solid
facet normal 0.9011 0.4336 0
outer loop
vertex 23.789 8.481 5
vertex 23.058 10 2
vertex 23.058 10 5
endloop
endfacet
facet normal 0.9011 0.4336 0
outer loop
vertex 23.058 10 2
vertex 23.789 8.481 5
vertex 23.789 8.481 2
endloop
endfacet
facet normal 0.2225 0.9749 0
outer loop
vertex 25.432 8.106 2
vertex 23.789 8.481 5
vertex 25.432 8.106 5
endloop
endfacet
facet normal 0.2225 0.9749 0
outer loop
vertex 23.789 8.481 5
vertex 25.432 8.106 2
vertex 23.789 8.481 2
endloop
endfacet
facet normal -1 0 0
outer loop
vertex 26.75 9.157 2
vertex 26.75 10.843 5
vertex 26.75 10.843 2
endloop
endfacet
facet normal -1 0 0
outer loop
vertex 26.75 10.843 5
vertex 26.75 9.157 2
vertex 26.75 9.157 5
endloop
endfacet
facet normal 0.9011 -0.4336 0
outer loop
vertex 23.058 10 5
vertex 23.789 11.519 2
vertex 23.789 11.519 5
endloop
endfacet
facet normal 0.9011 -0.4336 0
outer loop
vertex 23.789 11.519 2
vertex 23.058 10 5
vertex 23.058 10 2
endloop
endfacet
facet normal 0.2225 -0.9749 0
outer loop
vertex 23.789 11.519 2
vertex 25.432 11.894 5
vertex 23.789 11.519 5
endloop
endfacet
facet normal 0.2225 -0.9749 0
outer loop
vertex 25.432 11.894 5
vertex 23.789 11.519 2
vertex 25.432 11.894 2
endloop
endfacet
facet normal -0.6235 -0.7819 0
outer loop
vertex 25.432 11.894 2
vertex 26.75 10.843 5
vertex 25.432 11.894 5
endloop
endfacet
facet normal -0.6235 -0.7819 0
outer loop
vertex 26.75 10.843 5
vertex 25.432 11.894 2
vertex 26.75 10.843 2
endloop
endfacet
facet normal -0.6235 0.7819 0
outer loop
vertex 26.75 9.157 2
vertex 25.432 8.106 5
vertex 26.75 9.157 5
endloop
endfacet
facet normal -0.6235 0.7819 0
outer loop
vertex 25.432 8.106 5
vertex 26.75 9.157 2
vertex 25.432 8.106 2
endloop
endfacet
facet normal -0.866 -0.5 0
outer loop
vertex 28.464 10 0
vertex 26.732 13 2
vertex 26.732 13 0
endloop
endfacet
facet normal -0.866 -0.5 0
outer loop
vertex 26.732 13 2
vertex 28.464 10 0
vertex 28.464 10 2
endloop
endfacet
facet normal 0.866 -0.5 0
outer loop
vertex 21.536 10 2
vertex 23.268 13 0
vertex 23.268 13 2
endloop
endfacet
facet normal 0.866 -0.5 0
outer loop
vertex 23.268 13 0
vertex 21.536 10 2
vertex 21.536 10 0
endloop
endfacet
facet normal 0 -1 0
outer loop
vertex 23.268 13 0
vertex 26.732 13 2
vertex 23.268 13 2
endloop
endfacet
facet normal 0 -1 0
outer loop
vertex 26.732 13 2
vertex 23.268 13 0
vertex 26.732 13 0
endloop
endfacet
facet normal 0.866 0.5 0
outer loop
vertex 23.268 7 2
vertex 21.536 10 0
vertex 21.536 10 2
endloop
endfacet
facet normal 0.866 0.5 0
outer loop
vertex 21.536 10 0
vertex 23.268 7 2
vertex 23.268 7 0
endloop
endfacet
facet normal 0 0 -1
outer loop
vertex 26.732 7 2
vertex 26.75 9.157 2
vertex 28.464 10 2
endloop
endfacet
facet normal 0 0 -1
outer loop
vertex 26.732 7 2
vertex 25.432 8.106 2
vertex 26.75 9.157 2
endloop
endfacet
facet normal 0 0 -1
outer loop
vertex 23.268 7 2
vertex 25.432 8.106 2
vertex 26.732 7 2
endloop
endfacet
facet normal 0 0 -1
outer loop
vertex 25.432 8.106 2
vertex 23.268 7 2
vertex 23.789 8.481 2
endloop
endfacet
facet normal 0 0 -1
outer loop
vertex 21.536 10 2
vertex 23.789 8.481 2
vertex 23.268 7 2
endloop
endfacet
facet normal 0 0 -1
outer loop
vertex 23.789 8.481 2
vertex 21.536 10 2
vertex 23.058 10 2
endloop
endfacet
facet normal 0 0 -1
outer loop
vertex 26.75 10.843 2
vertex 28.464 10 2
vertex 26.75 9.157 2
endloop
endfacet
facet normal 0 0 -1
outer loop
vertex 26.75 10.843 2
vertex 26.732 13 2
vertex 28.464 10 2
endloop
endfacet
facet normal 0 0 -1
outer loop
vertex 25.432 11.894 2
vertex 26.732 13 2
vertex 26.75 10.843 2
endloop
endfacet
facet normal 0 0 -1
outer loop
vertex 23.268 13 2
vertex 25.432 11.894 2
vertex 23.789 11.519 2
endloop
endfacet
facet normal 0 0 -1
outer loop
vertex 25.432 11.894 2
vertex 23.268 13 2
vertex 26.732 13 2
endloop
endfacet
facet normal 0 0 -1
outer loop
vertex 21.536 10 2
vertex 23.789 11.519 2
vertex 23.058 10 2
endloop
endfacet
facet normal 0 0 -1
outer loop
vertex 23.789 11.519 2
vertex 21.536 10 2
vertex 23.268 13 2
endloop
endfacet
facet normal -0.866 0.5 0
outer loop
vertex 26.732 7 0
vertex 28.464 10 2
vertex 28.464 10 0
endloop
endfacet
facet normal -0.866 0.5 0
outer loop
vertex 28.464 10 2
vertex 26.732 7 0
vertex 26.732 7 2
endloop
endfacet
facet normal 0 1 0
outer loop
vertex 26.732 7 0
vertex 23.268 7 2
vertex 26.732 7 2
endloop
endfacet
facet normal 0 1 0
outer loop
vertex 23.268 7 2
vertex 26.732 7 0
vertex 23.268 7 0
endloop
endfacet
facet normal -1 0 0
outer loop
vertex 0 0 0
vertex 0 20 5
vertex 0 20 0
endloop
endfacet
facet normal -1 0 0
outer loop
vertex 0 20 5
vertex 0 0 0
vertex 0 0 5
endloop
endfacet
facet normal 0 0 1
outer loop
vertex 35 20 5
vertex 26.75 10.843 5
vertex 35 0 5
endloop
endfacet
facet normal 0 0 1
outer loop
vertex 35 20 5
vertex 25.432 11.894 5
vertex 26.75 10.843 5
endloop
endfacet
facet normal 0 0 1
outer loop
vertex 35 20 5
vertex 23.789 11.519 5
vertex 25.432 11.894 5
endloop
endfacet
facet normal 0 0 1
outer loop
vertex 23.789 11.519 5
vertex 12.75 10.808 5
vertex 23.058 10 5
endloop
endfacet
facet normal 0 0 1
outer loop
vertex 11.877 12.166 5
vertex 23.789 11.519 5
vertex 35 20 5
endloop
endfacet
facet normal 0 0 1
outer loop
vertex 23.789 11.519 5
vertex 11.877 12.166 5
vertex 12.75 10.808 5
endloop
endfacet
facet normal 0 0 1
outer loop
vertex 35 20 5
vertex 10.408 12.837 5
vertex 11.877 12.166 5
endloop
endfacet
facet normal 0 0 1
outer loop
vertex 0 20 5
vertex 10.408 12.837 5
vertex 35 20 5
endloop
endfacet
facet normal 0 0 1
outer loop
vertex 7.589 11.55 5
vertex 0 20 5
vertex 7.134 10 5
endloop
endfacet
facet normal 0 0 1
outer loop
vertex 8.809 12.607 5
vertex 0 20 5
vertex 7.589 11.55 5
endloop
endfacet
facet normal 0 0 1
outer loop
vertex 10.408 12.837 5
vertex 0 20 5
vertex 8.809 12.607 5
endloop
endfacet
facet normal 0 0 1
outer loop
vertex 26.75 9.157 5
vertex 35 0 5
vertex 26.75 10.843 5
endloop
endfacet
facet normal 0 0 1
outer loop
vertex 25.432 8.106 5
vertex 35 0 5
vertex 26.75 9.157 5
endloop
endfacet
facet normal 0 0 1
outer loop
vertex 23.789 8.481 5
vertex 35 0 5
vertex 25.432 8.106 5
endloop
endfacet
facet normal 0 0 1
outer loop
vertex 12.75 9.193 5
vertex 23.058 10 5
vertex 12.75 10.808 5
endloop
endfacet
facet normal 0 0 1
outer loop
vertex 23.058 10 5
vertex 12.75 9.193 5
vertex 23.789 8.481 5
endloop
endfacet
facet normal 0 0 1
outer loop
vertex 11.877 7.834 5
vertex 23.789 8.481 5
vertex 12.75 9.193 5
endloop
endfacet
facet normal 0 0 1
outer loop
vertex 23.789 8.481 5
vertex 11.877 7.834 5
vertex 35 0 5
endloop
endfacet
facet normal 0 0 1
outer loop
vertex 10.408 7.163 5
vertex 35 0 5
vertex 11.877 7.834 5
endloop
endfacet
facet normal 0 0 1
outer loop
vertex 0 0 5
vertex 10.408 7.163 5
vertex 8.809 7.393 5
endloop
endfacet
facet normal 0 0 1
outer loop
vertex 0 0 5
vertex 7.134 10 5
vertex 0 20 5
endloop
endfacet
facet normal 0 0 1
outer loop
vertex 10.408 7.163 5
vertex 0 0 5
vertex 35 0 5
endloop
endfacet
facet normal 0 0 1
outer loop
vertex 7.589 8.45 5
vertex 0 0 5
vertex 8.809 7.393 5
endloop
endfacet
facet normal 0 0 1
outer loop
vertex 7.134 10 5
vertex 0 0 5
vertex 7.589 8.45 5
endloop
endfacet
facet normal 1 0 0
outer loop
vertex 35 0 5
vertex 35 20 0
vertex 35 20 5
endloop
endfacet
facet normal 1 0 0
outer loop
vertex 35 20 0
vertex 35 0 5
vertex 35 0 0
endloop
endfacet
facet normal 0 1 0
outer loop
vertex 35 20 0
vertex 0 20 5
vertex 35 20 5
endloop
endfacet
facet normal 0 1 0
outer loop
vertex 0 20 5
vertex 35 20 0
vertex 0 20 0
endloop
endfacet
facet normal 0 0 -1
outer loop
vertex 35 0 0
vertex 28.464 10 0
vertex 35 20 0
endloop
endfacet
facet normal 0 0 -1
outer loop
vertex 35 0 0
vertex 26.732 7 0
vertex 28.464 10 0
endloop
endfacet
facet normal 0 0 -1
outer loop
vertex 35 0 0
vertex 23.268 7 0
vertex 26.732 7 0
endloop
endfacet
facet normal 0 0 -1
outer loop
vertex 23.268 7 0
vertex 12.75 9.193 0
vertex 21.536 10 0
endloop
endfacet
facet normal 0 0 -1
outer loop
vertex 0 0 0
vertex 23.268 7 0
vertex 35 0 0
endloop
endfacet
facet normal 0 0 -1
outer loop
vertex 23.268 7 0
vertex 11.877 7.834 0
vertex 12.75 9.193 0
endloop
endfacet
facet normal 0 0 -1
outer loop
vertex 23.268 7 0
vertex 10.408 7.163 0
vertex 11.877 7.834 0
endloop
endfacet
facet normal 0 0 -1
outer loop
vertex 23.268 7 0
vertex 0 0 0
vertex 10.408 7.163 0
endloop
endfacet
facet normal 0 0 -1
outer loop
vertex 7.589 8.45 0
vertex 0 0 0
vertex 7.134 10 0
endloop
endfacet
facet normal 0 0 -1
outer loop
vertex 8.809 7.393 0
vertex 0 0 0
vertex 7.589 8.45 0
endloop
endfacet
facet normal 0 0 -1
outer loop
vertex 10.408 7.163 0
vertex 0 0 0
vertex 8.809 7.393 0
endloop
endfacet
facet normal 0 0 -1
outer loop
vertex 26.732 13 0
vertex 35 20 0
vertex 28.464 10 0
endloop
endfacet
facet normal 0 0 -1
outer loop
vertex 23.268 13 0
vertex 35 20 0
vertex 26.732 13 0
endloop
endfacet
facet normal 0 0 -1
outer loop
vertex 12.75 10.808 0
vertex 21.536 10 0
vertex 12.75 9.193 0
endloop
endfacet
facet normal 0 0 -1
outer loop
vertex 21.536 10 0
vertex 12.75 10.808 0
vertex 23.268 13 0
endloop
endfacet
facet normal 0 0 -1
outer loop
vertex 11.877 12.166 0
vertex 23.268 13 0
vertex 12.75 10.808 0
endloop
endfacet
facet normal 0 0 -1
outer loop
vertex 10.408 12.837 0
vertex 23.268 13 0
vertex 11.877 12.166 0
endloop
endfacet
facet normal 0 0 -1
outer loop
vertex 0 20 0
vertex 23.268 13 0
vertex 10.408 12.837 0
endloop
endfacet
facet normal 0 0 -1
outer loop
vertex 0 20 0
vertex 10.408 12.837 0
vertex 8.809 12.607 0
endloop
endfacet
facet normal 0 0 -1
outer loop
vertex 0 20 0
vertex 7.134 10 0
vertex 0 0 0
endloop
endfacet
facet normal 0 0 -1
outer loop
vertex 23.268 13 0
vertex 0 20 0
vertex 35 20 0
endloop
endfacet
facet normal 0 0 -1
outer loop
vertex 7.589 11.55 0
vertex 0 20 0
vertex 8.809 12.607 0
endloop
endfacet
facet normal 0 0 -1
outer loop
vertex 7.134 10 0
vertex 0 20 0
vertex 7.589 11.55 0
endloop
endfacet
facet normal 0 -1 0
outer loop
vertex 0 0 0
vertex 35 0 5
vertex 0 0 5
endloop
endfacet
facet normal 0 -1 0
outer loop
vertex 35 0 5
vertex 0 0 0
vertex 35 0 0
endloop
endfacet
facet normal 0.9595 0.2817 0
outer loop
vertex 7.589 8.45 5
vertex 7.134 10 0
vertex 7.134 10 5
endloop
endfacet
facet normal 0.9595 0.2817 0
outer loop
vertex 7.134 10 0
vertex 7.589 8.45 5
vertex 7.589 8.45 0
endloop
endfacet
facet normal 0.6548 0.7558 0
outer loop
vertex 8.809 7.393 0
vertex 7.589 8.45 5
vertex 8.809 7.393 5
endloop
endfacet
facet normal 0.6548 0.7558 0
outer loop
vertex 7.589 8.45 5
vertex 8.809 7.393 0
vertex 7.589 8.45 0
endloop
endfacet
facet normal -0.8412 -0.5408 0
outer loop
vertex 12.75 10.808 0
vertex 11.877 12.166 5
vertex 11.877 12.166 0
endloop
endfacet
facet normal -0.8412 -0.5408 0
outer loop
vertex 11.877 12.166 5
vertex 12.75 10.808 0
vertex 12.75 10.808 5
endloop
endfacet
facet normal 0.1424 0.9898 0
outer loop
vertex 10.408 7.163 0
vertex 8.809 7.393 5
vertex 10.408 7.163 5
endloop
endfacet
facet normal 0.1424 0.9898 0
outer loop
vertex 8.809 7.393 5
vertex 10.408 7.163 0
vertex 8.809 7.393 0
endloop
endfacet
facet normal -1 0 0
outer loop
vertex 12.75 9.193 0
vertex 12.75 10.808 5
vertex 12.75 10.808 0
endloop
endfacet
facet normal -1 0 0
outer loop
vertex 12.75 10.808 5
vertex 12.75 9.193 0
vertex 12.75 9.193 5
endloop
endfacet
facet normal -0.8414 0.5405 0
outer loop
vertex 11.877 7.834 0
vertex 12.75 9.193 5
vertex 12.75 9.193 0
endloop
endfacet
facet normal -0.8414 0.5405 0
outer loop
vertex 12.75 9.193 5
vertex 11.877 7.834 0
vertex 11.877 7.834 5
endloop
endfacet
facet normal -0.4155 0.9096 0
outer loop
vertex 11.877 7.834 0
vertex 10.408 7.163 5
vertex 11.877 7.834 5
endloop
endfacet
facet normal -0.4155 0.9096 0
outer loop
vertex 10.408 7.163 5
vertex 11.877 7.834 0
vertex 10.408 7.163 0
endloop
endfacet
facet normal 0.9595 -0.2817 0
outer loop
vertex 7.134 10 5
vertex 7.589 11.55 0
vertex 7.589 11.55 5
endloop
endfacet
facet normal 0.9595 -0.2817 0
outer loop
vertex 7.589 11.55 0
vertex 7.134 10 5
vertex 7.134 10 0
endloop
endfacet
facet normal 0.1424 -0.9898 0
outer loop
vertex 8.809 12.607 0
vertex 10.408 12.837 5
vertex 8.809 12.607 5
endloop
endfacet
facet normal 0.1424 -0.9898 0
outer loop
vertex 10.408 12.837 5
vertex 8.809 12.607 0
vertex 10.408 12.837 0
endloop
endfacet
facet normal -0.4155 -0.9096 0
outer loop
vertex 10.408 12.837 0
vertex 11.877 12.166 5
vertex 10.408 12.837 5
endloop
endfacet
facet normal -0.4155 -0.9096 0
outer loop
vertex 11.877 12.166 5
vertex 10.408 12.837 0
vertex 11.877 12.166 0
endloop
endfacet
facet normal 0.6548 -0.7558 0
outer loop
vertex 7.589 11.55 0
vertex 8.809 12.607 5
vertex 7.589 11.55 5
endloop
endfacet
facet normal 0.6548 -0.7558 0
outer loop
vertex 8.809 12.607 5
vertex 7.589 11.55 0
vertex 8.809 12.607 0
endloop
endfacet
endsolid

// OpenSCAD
use <MCAD/polyholes.scad>;

// Electronics mount for Alligator Board

mount_length = 35.00;
mount_width  = 20.00;
mount_height =  5.00;

mount_hole_extrusion_d      =  5.50;
mount_hole_extrusion_offset = 10.00;
mount_hole_board_d          =  3.50;
mount_hole_board_offset     = 25.00;
mount_hole_board_nut_trap_d =  6.00;
mount_hole_board_nut_trap_h =  3.00;

module hex_nut() {
    n = 6;  // hex nut
    cylinder(h = h, r = r / cos (180 / n), $fn = n);
}

difference() {
    cube([mount_length, mount_width, mount_height]);
    // mount holes
    translate([mount_hole_extrusion_offset, mount_width / 2.0, -1.0]) polyhole(d = mount_hole_extrusion_d, h = mount_height + 2.0);
    translate([mount_hole_board_offset, mount_width / 2.0, -1.0]) {
        polyhole(d = mount_hole_board_d, h = mount_height + 2.0);
        hex_nut(r = mount_hole_board_nut_trap_d / 2.0, h = mount_hole_board_nut_trap_h);
    }
}
